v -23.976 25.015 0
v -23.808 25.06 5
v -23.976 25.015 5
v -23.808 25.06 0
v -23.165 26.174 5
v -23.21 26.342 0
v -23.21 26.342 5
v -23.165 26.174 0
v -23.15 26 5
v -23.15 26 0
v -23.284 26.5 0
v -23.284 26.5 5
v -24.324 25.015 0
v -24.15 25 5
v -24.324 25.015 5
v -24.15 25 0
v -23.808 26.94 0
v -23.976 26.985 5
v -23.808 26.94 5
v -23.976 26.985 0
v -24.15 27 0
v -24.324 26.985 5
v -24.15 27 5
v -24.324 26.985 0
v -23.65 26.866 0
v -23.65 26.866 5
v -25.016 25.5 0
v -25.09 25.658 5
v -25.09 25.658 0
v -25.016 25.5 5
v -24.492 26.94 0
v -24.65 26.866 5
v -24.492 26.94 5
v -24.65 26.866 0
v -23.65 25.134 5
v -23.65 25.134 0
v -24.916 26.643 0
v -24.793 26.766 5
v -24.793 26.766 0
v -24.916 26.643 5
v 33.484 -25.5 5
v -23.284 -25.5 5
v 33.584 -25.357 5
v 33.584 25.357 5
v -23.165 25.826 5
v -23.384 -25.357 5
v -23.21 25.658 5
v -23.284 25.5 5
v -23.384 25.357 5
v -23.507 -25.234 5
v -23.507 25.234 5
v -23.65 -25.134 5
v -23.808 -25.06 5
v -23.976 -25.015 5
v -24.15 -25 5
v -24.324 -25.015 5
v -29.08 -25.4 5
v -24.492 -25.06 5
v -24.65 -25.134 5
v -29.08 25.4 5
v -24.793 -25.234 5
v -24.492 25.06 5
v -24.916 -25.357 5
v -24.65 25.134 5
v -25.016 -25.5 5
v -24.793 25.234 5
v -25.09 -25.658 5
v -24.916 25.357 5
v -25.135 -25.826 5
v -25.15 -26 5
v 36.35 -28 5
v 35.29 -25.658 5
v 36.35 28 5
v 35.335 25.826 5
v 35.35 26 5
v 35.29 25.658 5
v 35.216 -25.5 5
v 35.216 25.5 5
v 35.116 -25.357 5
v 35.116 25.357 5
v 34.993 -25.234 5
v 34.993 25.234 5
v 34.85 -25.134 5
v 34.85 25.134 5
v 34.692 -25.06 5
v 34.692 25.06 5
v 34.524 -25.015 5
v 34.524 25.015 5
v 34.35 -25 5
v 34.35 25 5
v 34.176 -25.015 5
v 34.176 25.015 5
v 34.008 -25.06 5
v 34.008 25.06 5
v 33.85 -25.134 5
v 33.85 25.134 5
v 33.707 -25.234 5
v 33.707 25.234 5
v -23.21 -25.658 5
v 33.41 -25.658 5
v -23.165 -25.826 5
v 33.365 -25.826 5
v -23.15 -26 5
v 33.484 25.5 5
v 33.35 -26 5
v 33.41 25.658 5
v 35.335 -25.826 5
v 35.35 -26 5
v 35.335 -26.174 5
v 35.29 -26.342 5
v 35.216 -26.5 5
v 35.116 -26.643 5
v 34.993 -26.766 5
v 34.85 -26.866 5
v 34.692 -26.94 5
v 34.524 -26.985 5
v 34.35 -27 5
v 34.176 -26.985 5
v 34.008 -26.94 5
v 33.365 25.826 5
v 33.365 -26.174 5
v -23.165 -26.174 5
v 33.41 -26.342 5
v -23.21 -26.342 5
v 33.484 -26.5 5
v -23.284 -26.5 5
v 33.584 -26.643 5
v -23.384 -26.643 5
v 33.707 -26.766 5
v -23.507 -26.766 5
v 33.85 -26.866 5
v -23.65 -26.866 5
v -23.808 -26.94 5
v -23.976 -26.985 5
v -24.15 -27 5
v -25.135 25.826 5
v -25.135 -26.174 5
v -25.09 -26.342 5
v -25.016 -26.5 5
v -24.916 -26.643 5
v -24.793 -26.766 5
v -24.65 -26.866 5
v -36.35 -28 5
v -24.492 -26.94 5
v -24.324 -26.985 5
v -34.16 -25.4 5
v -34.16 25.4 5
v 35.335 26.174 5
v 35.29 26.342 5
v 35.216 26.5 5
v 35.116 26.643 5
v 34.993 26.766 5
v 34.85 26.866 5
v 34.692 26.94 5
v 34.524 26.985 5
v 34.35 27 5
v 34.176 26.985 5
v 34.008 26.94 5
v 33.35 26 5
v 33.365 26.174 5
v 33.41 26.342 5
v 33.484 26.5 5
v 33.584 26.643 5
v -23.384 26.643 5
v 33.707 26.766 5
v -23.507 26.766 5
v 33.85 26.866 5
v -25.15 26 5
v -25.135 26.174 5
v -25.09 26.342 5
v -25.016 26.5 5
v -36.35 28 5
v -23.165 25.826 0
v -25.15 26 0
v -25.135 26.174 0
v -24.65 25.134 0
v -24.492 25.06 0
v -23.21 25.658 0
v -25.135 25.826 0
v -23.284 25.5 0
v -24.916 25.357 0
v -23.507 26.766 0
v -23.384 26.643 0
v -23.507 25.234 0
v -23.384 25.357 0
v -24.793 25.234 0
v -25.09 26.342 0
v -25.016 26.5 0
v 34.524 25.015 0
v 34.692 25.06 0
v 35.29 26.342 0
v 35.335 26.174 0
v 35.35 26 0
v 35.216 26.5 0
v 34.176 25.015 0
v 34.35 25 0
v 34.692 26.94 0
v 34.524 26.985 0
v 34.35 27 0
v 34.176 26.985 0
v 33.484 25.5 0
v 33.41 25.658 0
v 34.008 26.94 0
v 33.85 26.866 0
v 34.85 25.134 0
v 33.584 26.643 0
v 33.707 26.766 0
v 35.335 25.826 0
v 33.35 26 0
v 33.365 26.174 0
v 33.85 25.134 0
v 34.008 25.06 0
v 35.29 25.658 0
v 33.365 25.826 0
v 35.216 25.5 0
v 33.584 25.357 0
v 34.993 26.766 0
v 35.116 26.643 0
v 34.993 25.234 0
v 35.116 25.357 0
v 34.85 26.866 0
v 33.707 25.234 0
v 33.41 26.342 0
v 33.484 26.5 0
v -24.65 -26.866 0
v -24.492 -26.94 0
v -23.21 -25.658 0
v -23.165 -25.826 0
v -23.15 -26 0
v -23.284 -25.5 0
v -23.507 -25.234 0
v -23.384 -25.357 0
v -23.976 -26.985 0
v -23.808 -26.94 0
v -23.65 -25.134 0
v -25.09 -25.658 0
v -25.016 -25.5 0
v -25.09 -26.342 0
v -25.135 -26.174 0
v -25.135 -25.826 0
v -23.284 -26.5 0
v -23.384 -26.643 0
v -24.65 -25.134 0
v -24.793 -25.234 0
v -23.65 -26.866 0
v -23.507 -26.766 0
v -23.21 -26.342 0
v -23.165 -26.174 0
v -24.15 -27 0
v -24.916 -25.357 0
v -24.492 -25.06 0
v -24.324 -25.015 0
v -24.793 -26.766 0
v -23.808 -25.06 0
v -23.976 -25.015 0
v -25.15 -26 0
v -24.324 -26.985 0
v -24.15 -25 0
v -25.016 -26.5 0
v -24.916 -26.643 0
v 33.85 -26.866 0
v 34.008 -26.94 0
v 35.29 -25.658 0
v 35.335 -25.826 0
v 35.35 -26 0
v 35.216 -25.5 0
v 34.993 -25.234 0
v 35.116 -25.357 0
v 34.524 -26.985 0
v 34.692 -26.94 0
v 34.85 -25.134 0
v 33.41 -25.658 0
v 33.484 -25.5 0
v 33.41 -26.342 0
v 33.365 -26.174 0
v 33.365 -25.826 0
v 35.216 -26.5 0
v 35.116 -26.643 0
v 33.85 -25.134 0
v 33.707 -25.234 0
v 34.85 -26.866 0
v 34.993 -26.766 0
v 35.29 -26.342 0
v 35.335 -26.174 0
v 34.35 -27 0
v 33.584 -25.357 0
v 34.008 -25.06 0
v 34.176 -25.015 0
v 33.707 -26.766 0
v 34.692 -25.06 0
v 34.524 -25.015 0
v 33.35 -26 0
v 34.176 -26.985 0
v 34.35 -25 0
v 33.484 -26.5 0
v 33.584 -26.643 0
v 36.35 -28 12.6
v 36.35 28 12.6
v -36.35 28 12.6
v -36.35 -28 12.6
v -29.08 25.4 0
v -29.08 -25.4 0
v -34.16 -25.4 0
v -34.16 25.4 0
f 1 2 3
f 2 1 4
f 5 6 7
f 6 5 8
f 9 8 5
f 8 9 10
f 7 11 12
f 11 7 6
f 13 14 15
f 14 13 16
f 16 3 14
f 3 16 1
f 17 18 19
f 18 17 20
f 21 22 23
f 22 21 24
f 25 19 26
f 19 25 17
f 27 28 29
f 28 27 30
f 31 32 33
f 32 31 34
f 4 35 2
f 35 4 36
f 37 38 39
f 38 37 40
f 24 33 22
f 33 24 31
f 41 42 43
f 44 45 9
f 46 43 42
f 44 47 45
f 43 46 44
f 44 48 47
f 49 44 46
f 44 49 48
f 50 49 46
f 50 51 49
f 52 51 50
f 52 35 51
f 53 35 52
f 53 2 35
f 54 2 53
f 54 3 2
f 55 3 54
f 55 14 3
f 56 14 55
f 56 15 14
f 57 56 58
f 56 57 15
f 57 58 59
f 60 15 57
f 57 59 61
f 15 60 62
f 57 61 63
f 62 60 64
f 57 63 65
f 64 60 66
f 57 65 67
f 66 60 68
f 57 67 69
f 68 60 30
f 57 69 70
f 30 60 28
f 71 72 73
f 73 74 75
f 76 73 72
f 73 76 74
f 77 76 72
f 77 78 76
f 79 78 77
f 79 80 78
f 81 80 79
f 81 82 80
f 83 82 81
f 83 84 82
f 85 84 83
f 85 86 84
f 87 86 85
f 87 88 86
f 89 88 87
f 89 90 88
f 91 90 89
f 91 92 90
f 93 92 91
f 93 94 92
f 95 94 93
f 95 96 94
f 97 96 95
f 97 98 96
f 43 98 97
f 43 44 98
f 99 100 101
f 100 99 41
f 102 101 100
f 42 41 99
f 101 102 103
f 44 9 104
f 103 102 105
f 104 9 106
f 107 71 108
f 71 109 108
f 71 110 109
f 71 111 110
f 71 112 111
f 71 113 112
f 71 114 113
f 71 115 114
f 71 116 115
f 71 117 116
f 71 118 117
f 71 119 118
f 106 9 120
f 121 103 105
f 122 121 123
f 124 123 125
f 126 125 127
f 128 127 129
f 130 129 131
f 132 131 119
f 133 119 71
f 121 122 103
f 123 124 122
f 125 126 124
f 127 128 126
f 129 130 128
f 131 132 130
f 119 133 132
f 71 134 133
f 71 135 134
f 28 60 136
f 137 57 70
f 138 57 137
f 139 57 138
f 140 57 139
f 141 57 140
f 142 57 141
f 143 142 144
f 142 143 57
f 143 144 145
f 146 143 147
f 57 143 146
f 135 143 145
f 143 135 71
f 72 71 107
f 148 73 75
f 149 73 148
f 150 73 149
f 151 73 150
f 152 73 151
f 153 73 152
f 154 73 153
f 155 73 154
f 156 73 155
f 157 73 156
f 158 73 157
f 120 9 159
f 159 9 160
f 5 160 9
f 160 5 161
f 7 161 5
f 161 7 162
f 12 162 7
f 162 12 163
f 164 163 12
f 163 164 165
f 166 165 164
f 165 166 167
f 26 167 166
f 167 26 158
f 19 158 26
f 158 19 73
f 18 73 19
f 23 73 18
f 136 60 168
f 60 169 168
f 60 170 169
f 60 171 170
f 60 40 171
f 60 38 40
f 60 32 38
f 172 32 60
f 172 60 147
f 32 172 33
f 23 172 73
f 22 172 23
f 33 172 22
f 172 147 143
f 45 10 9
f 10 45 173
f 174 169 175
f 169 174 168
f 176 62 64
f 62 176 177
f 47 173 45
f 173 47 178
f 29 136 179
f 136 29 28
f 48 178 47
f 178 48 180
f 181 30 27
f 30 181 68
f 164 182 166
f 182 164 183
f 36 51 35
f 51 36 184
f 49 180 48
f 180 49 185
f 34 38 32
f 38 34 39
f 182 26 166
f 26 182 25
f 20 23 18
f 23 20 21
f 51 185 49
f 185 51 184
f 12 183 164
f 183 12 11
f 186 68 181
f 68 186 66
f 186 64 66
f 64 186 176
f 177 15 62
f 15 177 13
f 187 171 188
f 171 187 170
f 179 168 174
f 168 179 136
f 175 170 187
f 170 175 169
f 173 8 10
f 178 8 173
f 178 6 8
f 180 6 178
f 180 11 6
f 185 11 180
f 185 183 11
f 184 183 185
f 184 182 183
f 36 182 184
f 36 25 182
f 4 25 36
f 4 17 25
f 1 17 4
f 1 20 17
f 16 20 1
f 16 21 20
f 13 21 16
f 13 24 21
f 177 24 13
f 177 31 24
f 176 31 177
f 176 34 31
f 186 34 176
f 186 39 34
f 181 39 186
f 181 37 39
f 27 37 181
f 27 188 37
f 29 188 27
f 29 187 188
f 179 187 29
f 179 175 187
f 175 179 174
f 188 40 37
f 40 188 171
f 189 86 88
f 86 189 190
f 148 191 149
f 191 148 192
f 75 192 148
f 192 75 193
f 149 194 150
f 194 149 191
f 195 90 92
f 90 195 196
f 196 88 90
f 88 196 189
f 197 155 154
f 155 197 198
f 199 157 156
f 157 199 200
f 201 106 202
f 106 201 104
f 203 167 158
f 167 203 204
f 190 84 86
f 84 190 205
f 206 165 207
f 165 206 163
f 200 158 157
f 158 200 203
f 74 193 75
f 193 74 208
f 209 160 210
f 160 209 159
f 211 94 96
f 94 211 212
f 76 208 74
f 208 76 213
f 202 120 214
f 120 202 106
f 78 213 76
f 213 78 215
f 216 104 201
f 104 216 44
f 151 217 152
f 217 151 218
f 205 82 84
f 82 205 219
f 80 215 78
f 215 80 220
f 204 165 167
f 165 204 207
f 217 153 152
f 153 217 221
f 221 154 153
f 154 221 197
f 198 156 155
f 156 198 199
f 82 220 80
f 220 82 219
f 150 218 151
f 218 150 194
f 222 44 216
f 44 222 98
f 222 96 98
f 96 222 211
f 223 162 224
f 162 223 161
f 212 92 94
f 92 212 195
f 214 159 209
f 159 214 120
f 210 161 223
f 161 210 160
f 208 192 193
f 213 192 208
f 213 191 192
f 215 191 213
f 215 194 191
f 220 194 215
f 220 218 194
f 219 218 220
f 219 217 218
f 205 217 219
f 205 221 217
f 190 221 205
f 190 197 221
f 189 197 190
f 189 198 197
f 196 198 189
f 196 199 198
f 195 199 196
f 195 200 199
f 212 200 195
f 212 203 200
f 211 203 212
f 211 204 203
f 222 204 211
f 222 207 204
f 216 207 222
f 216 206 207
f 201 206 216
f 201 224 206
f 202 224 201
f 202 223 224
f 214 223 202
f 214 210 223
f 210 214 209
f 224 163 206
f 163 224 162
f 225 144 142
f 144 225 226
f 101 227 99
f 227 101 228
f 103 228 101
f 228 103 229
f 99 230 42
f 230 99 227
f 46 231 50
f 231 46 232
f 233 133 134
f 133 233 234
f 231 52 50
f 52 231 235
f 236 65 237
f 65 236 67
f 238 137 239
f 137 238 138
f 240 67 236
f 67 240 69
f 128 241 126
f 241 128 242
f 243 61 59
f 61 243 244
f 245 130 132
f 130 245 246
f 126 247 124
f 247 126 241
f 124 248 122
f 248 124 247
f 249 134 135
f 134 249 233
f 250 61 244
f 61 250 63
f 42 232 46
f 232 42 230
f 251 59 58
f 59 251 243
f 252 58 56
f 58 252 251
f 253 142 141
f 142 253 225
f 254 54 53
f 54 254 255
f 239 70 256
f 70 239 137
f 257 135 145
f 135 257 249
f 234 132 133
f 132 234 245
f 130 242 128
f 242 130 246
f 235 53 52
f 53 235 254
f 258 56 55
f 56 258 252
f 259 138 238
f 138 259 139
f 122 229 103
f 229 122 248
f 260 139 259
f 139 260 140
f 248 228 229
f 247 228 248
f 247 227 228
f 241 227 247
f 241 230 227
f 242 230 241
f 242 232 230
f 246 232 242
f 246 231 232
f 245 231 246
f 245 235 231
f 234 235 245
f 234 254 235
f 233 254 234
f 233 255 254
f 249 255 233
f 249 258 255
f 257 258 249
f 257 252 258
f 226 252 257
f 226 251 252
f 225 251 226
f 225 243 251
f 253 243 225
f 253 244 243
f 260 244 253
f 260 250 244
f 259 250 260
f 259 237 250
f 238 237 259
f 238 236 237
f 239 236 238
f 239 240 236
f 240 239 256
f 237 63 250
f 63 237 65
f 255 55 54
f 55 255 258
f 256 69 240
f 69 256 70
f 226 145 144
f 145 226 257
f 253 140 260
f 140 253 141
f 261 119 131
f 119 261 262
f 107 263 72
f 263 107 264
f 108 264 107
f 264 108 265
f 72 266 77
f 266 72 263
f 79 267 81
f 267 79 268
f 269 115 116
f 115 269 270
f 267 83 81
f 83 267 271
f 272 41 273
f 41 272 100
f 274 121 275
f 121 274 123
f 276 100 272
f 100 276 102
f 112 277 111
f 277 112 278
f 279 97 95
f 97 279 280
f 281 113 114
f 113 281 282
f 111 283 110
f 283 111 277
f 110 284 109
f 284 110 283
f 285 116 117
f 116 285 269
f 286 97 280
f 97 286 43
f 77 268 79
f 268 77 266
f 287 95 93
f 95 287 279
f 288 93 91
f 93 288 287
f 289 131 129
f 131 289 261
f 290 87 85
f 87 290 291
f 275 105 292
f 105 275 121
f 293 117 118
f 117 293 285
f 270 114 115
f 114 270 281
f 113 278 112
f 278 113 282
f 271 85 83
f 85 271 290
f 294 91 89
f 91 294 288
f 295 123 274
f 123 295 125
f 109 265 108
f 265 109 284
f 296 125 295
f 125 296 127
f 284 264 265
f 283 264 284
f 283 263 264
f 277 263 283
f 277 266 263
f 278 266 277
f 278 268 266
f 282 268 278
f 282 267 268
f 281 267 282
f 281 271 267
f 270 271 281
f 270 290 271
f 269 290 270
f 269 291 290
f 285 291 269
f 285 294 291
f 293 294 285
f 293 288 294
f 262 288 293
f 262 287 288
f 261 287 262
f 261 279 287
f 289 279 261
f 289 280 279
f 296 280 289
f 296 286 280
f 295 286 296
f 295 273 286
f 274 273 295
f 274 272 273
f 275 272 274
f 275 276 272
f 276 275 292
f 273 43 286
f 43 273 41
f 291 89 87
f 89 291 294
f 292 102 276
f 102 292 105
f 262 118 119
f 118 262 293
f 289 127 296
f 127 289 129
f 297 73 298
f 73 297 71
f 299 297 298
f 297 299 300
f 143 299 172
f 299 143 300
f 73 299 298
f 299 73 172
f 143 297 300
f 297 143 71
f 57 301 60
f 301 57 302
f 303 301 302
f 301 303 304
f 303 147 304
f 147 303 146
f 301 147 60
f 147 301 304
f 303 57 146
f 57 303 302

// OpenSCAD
module_size_x=72.70;
module_size_y=56;
module_size_z=7.6;

connector_size_x=2.54*2;
connector_size_y=2.54*20;
connector_size_z=9.1-3.3;

connector_pos_x=3.46+2.54/2-module_size_x/2;

clearance_z=5;

support_diameter=2;

support_pos= [ [-72.7/2+12.2, 52/2], [-72.7/2+70.7, 52/2], [-72.7/2+12.2, -52/2], [-72.7/2+70.7, -52/2],];

union() {
    // pcb & display
    translate([0,0,clearance_z+module_size_z/2]) cube([module_size_x, module_size_y, module_size_z], center=true);
    
    for (loc=support_pos) {
        translate([loc[0], loc[1]]) cylinder(d=support_diameter, h=clearance_z, $fn=36);
    }
    
    translate([connector_pos_x,0,connector_size_z/2]) cube([connector_size_x, connector_size_y, connector_size_z], center=true);
}
